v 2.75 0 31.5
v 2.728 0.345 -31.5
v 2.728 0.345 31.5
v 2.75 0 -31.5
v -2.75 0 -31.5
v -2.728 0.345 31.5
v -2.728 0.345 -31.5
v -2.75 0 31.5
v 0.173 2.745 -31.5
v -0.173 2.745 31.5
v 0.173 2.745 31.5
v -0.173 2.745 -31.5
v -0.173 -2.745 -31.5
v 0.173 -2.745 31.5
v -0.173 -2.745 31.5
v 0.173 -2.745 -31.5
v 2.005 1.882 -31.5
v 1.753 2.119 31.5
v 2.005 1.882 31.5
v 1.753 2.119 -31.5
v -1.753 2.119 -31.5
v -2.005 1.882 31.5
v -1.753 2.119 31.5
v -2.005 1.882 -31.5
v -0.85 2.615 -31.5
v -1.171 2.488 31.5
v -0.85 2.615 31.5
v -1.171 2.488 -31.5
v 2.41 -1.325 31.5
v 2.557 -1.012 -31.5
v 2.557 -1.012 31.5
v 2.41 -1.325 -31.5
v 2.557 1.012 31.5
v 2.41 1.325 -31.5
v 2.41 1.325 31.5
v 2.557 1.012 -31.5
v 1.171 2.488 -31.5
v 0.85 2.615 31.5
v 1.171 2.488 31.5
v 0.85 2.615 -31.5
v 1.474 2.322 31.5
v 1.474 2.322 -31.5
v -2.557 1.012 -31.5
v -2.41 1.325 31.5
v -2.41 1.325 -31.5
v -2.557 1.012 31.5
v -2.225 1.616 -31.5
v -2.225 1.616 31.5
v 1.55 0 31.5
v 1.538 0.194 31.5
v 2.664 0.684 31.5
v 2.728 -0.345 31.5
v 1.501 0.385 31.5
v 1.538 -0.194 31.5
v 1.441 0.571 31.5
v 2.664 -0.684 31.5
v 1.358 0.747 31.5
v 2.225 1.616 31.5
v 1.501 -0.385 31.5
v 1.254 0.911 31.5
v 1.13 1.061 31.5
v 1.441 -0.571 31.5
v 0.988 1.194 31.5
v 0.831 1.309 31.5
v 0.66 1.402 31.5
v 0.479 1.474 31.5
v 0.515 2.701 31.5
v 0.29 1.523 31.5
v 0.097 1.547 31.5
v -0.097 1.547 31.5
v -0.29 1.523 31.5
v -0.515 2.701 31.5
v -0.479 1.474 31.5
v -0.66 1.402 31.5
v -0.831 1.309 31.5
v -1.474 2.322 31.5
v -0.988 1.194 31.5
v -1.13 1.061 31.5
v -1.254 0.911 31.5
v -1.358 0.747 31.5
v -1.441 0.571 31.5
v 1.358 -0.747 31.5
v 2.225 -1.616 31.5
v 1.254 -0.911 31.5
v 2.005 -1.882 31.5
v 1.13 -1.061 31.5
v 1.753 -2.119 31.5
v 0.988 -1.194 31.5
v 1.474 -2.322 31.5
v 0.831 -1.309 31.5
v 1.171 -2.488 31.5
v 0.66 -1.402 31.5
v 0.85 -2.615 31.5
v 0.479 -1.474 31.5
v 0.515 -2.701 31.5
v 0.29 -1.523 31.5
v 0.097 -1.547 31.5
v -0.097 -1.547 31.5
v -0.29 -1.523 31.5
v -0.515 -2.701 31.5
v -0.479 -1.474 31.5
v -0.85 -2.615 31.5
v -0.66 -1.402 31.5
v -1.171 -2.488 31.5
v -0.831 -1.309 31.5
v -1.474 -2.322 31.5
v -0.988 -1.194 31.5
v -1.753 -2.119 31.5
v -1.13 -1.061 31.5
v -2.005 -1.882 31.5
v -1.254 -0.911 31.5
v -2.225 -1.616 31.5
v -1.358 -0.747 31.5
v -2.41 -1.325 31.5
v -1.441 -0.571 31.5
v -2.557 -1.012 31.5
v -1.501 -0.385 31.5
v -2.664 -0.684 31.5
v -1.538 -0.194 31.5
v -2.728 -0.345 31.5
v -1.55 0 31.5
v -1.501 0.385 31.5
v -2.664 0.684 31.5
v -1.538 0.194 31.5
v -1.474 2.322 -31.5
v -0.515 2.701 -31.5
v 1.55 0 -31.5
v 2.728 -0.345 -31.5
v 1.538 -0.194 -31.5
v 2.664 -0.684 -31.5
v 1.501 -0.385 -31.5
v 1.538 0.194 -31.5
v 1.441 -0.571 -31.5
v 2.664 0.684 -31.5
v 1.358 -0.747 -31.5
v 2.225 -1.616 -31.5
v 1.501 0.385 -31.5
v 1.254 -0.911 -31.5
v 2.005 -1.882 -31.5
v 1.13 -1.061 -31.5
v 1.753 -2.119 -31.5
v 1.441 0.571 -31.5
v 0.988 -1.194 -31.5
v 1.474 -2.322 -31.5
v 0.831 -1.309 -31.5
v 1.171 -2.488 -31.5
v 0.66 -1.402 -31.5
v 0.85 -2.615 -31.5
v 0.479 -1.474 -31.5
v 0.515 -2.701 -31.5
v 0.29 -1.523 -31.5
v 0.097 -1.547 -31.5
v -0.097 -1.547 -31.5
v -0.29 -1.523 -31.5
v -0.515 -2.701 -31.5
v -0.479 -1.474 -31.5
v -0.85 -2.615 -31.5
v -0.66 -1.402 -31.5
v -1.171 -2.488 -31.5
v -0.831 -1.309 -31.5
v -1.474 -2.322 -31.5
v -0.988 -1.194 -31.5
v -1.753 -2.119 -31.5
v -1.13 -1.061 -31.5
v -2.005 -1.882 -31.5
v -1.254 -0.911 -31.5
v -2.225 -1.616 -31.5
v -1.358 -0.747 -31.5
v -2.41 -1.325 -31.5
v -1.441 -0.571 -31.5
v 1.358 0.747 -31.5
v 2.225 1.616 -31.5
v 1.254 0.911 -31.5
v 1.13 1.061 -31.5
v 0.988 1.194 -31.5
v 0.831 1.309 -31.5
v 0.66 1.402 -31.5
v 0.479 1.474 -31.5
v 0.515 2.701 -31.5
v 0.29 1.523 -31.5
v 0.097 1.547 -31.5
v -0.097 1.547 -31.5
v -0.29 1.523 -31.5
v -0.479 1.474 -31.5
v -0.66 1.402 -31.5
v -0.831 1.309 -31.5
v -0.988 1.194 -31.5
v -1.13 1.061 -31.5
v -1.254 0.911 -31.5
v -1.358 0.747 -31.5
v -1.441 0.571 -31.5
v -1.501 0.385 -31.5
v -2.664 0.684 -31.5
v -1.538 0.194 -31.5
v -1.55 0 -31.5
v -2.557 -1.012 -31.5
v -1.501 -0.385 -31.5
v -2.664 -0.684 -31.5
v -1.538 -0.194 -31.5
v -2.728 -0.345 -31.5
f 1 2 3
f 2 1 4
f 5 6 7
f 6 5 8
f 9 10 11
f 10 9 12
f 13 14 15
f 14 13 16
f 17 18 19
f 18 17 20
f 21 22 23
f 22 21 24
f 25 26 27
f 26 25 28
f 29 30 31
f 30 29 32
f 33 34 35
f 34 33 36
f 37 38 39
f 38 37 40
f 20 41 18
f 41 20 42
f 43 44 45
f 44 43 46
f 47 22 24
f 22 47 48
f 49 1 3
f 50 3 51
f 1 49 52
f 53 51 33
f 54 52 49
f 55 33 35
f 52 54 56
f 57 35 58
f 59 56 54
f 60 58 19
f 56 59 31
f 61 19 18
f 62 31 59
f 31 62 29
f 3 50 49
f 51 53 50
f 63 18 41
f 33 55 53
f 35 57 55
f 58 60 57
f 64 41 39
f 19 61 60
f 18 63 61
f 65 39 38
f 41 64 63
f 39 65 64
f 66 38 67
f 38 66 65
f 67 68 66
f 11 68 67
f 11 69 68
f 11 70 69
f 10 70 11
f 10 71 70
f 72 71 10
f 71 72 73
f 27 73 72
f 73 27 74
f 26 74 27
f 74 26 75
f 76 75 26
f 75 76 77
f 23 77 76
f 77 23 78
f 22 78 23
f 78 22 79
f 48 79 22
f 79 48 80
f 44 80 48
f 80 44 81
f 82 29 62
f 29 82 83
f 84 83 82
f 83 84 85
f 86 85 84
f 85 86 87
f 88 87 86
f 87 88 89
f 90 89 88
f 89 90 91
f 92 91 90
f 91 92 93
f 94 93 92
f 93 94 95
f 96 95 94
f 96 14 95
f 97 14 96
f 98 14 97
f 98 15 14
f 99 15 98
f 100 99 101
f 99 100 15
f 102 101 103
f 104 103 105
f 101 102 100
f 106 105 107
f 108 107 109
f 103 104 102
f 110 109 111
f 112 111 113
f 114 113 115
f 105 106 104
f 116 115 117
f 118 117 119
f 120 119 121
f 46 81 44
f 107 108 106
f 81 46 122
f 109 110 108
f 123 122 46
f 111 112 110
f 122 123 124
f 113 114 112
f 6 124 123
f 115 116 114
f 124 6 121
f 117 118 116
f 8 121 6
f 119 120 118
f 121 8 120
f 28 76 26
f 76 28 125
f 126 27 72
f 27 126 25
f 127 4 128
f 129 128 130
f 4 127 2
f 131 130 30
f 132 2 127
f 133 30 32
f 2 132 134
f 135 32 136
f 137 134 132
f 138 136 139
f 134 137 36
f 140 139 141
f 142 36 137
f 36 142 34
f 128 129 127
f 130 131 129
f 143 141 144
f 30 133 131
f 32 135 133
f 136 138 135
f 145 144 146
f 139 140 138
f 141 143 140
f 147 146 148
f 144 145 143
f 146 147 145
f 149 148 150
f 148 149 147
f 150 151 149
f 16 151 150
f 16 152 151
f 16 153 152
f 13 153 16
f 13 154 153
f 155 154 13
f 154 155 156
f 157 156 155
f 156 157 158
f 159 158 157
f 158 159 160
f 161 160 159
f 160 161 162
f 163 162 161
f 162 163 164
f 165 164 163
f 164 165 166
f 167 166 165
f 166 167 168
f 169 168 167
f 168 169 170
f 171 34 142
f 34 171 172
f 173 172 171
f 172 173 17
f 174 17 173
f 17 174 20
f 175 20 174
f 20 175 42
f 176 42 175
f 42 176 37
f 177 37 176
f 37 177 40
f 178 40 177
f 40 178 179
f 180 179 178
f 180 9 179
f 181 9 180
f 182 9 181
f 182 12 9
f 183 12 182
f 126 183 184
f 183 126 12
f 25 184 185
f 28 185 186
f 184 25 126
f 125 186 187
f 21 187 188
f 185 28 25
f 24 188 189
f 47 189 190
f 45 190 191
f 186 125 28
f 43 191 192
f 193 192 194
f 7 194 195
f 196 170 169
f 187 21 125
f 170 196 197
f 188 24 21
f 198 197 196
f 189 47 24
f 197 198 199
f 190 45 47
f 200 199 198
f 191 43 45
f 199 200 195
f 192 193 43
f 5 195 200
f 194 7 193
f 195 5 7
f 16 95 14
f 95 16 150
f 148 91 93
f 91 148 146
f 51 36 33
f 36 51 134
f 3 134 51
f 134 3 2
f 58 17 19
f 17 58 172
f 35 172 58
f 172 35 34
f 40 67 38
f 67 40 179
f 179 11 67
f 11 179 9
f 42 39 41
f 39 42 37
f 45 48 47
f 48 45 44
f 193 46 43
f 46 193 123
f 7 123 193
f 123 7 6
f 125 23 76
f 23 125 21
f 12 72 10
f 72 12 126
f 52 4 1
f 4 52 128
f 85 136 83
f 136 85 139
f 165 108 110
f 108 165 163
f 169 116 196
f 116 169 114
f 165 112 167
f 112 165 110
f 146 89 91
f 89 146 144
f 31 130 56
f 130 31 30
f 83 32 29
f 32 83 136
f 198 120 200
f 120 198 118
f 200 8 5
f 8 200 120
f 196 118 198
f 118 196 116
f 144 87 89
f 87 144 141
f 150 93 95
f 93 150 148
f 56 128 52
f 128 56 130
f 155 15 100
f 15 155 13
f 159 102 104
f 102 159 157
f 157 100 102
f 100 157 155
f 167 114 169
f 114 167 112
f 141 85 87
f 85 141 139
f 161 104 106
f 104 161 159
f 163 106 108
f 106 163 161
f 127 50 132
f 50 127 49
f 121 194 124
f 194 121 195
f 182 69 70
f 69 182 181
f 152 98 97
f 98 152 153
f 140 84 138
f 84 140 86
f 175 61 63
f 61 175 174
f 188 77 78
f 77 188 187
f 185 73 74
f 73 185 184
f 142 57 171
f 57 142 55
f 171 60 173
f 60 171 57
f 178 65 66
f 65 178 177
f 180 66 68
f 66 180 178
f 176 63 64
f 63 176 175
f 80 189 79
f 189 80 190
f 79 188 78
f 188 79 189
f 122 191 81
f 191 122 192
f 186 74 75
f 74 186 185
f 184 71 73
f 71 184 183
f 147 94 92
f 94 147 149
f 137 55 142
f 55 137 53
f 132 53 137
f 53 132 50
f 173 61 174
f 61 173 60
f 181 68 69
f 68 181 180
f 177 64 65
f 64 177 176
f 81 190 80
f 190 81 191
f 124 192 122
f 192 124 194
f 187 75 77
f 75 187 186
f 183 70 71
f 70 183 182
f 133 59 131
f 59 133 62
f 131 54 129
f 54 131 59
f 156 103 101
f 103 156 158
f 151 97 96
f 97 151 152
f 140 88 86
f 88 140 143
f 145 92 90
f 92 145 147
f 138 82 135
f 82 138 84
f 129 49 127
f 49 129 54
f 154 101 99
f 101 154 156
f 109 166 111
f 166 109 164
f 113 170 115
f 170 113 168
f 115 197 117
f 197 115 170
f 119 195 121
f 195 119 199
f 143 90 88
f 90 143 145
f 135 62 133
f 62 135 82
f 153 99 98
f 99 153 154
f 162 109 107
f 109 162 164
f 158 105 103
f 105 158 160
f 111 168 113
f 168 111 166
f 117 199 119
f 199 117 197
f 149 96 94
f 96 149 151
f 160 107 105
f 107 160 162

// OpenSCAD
$fn = 50;


difference() {
	union() {
		translate(v = [0, 0, -31.5000000000]) {
			cylinder(h = 63, r = 2.7500000000);
		}
	}
	union() {
		translate(v = [0, 0, -100.0000000000]) {
			cylinder(h = 200, r = 1.5500000000);
		}
	}
}
